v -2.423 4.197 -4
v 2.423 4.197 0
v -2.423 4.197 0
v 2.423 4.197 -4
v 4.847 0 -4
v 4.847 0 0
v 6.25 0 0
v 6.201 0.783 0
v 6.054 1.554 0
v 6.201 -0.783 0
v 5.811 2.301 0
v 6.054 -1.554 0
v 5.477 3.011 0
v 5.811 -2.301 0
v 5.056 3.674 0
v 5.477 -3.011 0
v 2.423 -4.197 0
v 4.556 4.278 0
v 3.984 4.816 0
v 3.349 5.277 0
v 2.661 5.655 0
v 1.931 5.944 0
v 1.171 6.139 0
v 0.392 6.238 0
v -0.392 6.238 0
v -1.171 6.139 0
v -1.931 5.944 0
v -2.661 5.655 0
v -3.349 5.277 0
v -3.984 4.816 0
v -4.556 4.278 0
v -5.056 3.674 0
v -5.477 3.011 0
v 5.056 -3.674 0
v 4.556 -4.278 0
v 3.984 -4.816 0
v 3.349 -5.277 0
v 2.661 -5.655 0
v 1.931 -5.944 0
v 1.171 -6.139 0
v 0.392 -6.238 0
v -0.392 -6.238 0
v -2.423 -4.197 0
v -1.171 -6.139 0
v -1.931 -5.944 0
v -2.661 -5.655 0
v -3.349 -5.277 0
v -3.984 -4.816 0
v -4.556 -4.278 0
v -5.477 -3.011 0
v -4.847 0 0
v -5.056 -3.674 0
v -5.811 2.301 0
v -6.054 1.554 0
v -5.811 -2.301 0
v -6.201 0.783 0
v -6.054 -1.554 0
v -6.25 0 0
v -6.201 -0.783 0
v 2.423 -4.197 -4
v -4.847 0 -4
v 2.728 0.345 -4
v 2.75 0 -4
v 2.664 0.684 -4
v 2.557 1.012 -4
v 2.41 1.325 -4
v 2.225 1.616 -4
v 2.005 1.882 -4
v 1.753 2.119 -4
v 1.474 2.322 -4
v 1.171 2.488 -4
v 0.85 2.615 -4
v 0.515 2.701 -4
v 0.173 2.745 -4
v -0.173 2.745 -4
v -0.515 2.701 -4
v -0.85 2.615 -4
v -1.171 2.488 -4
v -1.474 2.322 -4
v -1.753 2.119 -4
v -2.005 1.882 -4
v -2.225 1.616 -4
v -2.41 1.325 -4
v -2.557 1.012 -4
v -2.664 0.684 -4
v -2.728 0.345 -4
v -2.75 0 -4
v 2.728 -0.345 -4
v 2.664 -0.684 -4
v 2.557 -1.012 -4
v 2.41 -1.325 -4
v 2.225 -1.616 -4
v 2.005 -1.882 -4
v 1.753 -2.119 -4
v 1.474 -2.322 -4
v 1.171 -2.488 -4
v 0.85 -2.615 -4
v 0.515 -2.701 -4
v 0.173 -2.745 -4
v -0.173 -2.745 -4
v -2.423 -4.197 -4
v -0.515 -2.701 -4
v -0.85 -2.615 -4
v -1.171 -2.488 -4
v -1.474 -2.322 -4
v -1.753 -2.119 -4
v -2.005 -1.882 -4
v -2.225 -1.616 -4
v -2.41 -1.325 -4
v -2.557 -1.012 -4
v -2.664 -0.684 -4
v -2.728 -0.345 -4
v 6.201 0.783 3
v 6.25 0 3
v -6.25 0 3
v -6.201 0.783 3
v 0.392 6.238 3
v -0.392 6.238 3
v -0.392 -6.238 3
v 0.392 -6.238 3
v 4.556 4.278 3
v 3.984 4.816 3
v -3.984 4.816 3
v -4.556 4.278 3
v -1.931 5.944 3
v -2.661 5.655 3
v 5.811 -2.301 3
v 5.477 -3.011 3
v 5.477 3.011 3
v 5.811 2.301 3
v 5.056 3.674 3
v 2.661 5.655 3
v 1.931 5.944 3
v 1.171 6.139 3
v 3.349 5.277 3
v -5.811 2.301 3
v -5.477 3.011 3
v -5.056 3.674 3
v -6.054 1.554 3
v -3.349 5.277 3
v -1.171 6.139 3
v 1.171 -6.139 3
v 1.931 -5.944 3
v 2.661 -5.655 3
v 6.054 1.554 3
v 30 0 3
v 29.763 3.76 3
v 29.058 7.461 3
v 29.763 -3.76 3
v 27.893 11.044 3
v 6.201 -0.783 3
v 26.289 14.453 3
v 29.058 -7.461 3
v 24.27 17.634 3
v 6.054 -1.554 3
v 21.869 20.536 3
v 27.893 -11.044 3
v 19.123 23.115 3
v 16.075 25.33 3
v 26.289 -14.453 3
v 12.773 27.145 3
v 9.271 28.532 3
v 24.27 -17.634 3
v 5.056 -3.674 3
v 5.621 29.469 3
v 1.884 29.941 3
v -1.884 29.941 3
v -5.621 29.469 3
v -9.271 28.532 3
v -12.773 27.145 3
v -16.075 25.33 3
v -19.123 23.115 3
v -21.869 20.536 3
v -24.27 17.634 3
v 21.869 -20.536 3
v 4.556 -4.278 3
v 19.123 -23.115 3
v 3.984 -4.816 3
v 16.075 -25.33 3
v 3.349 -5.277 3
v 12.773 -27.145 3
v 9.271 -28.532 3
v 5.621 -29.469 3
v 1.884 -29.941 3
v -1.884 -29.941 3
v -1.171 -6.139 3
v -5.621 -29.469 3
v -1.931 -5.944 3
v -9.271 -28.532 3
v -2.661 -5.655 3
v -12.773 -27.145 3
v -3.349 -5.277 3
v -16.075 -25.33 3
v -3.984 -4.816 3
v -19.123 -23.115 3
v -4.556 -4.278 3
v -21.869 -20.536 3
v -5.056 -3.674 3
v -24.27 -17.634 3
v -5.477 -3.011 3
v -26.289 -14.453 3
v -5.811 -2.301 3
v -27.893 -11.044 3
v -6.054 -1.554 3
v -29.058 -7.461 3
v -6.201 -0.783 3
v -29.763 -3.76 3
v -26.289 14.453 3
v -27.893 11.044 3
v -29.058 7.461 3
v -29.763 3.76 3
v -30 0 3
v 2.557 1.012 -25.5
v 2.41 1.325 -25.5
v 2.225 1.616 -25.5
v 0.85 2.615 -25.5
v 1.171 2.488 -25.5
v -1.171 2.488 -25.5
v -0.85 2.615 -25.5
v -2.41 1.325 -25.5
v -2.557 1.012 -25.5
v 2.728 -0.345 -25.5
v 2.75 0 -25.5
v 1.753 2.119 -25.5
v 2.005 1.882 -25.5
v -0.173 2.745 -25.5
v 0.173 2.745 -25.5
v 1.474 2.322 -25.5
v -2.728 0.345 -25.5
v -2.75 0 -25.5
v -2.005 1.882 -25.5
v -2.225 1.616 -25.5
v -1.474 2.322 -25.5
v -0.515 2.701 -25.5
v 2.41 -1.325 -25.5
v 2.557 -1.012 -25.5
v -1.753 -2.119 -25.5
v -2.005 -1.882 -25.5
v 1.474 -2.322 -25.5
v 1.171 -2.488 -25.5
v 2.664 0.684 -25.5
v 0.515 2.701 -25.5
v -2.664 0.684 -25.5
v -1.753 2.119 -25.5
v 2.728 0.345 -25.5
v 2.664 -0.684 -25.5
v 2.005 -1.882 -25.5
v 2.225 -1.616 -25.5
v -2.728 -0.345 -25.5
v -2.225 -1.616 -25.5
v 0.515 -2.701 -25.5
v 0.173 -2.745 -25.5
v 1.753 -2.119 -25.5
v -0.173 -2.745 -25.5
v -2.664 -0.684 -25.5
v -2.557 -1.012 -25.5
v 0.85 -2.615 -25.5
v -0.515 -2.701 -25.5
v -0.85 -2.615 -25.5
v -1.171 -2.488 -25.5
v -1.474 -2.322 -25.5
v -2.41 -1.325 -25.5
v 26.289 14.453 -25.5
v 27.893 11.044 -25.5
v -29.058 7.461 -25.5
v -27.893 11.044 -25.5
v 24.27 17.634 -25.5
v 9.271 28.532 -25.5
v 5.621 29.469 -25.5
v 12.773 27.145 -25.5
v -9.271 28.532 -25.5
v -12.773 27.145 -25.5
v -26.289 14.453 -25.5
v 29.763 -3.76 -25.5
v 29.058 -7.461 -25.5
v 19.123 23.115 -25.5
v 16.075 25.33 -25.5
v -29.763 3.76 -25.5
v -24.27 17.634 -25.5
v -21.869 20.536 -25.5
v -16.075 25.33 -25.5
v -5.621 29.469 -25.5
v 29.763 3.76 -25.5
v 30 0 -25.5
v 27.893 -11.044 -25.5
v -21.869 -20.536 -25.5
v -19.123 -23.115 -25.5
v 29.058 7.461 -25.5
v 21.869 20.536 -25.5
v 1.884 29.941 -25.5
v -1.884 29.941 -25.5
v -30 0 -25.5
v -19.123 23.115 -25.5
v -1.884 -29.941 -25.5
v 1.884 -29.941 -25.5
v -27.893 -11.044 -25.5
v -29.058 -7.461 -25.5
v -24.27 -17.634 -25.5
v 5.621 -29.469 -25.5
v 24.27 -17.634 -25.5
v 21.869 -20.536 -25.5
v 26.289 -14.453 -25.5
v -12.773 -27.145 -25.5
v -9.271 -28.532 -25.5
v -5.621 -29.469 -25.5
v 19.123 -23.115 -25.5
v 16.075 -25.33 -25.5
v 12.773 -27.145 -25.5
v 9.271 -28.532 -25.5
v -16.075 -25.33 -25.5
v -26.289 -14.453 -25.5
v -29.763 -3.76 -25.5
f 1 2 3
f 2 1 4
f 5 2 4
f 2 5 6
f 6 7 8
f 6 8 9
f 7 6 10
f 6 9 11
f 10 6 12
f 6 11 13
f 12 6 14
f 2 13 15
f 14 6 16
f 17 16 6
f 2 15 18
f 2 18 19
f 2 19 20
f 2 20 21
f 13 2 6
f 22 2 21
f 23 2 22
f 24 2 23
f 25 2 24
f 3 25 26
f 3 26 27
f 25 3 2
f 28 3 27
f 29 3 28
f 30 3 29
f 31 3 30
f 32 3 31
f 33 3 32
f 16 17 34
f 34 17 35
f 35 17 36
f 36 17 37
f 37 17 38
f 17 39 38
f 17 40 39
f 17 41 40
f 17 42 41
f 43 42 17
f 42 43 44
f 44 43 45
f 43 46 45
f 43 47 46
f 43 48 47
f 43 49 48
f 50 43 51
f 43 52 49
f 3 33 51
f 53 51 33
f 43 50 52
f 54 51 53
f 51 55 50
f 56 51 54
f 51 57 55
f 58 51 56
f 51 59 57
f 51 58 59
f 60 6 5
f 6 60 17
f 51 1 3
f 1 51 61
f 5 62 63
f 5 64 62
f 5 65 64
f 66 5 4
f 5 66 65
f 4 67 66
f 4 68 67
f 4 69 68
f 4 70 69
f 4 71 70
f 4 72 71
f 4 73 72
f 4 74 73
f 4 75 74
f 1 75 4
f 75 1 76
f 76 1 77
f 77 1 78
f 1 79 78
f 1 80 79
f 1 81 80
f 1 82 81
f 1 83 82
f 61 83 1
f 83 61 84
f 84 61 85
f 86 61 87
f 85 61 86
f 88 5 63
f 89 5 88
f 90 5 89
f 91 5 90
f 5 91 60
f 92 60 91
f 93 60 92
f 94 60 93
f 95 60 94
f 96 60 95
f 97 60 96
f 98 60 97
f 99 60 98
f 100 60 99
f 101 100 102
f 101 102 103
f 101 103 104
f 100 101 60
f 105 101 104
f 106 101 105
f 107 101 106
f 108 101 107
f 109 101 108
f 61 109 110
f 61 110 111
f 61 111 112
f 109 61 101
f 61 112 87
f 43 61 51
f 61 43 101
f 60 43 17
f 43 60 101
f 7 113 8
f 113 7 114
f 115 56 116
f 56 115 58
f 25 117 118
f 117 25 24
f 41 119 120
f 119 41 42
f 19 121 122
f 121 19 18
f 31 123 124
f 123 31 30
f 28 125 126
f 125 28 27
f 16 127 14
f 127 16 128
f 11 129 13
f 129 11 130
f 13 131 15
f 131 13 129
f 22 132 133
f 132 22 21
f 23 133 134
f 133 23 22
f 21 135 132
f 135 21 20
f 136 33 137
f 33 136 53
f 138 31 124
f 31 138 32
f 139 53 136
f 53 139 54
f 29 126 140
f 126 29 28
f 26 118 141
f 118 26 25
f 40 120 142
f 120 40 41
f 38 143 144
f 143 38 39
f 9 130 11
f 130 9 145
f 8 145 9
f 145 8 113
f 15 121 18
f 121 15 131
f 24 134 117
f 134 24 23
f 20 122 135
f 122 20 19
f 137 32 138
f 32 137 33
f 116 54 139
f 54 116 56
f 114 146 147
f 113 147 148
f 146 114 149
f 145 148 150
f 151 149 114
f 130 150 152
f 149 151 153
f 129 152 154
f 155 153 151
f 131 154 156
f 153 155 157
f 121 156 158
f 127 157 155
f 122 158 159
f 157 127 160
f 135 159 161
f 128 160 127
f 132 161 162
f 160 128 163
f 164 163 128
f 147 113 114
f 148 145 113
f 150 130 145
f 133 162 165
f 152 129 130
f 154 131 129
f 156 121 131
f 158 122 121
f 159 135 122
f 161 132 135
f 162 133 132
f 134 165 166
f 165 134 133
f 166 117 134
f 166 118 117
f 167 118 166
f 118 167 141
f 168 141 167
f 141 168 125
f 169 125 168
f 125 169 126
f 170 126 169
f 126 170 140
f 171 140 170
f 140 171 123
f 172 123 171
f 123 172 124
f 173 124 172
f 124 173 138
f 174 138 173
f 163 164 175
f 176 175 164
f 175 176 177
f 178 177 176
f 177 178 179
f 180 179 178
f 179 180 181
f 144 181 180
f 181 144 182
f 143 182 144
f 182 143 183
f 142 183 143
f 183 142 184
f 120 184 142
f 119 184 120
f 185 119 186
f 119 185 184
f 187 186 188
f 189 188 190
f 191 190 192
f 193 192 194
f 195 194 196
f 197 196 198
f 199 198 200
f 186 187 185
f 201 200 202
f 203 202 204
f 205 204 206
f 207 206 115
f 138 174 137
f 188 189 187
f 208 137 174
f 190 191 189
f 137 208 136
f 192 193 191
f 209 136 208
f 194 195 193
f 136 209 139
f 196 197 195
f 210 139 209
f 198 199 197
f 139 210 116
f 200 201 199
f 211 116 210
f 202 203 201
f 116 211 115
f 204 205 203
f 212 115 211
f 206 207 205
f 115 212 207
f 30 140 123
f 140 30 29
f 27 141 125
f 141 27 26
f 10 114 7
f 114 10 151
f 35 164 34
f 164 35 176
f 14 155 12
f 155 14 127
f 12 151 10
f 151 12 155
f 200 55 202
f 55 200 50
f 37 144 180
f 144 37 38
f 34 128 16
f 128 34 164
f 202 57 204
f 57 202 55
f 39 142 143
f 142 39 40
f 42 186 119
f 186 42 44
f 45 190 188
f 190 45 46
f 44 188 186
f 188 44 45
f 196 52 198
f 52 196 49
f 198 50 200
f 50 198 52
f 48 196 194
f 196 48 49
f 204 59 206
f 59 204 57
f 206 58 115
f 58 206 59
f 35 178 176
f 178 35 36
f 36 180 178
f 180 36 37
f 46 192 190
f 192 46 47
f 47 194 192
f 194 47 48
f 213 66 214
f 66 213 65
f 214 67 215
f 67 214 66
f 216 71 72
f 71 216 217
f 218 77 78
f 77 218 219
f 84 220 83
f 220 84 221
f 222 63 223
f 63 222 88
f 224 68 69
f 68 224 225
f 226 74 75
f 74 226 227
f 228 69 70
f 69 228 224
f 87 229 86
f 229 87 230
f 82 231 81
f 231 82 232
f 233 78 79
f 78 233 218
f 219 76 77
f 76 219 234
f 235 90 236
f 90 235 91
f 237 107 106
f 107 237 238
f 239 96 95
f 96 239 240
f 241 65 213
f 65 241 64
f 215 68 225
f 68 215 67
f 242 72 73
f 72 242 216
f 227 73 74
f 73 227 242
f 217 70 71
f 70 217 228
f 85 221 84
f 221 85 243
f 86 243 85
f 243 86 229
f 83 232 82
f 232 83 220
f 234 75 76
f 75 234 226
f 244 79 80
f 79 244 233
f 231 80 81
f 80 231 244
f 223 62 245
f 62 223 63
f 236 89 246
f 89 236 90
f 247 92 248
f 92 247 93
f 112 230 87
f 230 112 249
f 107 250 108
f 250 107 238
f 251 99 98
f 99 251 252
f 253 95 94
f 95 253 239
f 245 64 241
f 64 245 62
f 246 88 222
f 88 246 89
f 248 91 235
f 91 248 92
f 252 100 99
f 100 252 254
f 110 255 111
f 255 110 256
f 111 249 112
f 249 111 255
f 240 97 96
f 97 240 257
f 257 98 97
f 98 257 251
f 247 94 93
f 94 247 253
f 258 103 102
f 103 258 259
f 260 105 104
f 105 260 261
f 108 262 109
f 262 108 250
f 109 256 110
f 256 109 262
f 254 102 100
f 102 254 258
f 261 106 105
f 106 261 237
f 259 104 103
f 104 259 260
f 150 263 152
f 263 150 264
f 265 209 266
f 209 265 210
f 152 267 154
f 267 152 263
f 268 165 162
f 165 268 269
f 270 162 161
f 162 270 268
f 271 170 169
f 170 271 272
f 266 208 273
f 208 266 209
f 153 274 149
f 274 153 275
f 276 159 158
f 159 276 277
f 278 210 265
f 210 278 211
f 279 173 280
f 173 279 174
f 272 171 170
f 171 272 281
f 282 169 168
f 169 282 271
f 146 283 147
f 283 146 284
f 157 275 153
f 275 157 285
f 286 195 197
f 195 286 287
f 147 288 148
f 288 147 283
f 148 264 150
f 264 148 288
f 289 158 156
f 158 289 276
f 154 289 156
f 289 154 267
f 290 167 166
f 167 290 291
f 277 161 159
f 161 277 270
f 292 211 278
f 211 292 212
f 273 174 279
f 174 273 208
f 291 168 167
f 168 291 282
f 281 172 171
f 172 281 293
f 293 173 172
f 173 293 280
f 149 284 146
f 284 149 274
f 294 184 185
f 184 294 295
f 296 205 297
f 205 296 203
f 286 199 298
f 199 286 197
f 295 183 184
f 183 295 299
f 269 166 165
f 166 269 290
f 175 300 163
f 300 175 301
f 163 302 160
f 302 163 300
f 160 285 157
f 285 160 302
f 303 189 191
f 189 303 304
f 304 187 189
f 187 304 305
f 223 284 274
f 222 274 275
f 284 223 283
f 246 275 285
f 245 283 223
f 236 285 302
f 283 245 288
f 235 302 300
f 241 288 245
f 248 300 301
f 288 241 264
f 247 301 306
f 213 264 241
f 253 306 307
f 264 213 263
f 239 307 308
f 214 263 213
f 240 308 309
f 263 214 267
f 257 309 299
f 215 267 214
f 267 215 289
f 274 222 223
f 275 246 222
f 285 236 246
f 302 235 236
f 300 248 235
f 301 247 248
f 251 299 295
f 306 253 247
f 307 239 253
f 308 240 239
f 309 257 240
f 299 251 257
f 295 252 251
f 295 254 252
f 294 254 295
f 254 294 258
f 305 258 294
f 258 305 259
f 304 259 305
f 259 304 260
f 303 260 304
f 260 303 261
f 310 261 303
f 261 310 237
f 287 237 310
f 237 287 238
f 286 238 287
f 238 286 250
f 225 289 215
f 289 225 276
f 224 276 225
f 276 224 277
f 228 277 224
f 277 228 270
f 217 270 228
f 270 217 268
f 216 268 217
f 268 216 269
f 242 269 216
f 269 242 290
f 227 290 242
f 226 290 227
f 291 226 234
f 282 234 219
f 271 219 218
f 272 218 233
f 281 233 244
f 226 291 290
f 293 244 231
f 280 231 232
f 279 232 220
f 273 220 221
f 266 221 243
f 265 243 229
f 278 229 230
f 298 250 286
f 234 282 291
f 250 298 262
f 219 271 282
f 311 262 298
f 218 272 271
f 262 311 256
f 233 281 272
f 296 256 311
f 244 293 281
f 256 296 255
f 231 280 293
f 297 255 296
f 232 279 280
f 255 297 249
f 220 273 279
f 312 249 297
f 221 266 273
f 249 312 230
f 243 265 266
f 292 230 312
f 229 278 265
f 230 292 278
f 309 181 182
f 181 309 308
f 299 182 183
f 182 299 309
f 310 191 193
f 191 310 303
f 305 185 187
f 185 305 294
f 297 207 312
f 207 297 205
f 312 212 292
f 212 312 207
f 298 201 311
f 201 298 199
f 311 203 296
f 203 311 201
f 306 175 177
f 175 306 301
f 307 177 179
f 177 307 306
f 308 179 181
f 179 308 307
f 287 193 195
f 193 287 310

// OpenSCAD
$fn = 50;

difference() {
	union() {
		translate(v = [0, 0, -25.5]) {
			cylinder(h = 28.5, r = 30.0);
		}
	}
	union() {
		translate(v = [0, 0, 0]) {
			rotate(a = [0, 0, 0]) {
				difference() {
					union() {
						translate(v = [0, 0, -4]) {
							linear_extrude(height = 4) {
								polygon(points = [[4.8468, 0.0], [2.4234000000000004, 4.197451927062417], [-2.423399999999999, 4.197451927062417], [-4.8468, 5.935618106107392e-16], [-2.423400000000002, -4.197451927062416], [2.423399999999997, -4.197451927062419]]);
							}
						}
					}
					union();
				}
			}
		}
		#cylinder(h = 3, r = 6.25);
		#translate(v = [0, 0, -100.0]) {
			cylinder(h = 200, r = 2.75);
		}
	}
}
